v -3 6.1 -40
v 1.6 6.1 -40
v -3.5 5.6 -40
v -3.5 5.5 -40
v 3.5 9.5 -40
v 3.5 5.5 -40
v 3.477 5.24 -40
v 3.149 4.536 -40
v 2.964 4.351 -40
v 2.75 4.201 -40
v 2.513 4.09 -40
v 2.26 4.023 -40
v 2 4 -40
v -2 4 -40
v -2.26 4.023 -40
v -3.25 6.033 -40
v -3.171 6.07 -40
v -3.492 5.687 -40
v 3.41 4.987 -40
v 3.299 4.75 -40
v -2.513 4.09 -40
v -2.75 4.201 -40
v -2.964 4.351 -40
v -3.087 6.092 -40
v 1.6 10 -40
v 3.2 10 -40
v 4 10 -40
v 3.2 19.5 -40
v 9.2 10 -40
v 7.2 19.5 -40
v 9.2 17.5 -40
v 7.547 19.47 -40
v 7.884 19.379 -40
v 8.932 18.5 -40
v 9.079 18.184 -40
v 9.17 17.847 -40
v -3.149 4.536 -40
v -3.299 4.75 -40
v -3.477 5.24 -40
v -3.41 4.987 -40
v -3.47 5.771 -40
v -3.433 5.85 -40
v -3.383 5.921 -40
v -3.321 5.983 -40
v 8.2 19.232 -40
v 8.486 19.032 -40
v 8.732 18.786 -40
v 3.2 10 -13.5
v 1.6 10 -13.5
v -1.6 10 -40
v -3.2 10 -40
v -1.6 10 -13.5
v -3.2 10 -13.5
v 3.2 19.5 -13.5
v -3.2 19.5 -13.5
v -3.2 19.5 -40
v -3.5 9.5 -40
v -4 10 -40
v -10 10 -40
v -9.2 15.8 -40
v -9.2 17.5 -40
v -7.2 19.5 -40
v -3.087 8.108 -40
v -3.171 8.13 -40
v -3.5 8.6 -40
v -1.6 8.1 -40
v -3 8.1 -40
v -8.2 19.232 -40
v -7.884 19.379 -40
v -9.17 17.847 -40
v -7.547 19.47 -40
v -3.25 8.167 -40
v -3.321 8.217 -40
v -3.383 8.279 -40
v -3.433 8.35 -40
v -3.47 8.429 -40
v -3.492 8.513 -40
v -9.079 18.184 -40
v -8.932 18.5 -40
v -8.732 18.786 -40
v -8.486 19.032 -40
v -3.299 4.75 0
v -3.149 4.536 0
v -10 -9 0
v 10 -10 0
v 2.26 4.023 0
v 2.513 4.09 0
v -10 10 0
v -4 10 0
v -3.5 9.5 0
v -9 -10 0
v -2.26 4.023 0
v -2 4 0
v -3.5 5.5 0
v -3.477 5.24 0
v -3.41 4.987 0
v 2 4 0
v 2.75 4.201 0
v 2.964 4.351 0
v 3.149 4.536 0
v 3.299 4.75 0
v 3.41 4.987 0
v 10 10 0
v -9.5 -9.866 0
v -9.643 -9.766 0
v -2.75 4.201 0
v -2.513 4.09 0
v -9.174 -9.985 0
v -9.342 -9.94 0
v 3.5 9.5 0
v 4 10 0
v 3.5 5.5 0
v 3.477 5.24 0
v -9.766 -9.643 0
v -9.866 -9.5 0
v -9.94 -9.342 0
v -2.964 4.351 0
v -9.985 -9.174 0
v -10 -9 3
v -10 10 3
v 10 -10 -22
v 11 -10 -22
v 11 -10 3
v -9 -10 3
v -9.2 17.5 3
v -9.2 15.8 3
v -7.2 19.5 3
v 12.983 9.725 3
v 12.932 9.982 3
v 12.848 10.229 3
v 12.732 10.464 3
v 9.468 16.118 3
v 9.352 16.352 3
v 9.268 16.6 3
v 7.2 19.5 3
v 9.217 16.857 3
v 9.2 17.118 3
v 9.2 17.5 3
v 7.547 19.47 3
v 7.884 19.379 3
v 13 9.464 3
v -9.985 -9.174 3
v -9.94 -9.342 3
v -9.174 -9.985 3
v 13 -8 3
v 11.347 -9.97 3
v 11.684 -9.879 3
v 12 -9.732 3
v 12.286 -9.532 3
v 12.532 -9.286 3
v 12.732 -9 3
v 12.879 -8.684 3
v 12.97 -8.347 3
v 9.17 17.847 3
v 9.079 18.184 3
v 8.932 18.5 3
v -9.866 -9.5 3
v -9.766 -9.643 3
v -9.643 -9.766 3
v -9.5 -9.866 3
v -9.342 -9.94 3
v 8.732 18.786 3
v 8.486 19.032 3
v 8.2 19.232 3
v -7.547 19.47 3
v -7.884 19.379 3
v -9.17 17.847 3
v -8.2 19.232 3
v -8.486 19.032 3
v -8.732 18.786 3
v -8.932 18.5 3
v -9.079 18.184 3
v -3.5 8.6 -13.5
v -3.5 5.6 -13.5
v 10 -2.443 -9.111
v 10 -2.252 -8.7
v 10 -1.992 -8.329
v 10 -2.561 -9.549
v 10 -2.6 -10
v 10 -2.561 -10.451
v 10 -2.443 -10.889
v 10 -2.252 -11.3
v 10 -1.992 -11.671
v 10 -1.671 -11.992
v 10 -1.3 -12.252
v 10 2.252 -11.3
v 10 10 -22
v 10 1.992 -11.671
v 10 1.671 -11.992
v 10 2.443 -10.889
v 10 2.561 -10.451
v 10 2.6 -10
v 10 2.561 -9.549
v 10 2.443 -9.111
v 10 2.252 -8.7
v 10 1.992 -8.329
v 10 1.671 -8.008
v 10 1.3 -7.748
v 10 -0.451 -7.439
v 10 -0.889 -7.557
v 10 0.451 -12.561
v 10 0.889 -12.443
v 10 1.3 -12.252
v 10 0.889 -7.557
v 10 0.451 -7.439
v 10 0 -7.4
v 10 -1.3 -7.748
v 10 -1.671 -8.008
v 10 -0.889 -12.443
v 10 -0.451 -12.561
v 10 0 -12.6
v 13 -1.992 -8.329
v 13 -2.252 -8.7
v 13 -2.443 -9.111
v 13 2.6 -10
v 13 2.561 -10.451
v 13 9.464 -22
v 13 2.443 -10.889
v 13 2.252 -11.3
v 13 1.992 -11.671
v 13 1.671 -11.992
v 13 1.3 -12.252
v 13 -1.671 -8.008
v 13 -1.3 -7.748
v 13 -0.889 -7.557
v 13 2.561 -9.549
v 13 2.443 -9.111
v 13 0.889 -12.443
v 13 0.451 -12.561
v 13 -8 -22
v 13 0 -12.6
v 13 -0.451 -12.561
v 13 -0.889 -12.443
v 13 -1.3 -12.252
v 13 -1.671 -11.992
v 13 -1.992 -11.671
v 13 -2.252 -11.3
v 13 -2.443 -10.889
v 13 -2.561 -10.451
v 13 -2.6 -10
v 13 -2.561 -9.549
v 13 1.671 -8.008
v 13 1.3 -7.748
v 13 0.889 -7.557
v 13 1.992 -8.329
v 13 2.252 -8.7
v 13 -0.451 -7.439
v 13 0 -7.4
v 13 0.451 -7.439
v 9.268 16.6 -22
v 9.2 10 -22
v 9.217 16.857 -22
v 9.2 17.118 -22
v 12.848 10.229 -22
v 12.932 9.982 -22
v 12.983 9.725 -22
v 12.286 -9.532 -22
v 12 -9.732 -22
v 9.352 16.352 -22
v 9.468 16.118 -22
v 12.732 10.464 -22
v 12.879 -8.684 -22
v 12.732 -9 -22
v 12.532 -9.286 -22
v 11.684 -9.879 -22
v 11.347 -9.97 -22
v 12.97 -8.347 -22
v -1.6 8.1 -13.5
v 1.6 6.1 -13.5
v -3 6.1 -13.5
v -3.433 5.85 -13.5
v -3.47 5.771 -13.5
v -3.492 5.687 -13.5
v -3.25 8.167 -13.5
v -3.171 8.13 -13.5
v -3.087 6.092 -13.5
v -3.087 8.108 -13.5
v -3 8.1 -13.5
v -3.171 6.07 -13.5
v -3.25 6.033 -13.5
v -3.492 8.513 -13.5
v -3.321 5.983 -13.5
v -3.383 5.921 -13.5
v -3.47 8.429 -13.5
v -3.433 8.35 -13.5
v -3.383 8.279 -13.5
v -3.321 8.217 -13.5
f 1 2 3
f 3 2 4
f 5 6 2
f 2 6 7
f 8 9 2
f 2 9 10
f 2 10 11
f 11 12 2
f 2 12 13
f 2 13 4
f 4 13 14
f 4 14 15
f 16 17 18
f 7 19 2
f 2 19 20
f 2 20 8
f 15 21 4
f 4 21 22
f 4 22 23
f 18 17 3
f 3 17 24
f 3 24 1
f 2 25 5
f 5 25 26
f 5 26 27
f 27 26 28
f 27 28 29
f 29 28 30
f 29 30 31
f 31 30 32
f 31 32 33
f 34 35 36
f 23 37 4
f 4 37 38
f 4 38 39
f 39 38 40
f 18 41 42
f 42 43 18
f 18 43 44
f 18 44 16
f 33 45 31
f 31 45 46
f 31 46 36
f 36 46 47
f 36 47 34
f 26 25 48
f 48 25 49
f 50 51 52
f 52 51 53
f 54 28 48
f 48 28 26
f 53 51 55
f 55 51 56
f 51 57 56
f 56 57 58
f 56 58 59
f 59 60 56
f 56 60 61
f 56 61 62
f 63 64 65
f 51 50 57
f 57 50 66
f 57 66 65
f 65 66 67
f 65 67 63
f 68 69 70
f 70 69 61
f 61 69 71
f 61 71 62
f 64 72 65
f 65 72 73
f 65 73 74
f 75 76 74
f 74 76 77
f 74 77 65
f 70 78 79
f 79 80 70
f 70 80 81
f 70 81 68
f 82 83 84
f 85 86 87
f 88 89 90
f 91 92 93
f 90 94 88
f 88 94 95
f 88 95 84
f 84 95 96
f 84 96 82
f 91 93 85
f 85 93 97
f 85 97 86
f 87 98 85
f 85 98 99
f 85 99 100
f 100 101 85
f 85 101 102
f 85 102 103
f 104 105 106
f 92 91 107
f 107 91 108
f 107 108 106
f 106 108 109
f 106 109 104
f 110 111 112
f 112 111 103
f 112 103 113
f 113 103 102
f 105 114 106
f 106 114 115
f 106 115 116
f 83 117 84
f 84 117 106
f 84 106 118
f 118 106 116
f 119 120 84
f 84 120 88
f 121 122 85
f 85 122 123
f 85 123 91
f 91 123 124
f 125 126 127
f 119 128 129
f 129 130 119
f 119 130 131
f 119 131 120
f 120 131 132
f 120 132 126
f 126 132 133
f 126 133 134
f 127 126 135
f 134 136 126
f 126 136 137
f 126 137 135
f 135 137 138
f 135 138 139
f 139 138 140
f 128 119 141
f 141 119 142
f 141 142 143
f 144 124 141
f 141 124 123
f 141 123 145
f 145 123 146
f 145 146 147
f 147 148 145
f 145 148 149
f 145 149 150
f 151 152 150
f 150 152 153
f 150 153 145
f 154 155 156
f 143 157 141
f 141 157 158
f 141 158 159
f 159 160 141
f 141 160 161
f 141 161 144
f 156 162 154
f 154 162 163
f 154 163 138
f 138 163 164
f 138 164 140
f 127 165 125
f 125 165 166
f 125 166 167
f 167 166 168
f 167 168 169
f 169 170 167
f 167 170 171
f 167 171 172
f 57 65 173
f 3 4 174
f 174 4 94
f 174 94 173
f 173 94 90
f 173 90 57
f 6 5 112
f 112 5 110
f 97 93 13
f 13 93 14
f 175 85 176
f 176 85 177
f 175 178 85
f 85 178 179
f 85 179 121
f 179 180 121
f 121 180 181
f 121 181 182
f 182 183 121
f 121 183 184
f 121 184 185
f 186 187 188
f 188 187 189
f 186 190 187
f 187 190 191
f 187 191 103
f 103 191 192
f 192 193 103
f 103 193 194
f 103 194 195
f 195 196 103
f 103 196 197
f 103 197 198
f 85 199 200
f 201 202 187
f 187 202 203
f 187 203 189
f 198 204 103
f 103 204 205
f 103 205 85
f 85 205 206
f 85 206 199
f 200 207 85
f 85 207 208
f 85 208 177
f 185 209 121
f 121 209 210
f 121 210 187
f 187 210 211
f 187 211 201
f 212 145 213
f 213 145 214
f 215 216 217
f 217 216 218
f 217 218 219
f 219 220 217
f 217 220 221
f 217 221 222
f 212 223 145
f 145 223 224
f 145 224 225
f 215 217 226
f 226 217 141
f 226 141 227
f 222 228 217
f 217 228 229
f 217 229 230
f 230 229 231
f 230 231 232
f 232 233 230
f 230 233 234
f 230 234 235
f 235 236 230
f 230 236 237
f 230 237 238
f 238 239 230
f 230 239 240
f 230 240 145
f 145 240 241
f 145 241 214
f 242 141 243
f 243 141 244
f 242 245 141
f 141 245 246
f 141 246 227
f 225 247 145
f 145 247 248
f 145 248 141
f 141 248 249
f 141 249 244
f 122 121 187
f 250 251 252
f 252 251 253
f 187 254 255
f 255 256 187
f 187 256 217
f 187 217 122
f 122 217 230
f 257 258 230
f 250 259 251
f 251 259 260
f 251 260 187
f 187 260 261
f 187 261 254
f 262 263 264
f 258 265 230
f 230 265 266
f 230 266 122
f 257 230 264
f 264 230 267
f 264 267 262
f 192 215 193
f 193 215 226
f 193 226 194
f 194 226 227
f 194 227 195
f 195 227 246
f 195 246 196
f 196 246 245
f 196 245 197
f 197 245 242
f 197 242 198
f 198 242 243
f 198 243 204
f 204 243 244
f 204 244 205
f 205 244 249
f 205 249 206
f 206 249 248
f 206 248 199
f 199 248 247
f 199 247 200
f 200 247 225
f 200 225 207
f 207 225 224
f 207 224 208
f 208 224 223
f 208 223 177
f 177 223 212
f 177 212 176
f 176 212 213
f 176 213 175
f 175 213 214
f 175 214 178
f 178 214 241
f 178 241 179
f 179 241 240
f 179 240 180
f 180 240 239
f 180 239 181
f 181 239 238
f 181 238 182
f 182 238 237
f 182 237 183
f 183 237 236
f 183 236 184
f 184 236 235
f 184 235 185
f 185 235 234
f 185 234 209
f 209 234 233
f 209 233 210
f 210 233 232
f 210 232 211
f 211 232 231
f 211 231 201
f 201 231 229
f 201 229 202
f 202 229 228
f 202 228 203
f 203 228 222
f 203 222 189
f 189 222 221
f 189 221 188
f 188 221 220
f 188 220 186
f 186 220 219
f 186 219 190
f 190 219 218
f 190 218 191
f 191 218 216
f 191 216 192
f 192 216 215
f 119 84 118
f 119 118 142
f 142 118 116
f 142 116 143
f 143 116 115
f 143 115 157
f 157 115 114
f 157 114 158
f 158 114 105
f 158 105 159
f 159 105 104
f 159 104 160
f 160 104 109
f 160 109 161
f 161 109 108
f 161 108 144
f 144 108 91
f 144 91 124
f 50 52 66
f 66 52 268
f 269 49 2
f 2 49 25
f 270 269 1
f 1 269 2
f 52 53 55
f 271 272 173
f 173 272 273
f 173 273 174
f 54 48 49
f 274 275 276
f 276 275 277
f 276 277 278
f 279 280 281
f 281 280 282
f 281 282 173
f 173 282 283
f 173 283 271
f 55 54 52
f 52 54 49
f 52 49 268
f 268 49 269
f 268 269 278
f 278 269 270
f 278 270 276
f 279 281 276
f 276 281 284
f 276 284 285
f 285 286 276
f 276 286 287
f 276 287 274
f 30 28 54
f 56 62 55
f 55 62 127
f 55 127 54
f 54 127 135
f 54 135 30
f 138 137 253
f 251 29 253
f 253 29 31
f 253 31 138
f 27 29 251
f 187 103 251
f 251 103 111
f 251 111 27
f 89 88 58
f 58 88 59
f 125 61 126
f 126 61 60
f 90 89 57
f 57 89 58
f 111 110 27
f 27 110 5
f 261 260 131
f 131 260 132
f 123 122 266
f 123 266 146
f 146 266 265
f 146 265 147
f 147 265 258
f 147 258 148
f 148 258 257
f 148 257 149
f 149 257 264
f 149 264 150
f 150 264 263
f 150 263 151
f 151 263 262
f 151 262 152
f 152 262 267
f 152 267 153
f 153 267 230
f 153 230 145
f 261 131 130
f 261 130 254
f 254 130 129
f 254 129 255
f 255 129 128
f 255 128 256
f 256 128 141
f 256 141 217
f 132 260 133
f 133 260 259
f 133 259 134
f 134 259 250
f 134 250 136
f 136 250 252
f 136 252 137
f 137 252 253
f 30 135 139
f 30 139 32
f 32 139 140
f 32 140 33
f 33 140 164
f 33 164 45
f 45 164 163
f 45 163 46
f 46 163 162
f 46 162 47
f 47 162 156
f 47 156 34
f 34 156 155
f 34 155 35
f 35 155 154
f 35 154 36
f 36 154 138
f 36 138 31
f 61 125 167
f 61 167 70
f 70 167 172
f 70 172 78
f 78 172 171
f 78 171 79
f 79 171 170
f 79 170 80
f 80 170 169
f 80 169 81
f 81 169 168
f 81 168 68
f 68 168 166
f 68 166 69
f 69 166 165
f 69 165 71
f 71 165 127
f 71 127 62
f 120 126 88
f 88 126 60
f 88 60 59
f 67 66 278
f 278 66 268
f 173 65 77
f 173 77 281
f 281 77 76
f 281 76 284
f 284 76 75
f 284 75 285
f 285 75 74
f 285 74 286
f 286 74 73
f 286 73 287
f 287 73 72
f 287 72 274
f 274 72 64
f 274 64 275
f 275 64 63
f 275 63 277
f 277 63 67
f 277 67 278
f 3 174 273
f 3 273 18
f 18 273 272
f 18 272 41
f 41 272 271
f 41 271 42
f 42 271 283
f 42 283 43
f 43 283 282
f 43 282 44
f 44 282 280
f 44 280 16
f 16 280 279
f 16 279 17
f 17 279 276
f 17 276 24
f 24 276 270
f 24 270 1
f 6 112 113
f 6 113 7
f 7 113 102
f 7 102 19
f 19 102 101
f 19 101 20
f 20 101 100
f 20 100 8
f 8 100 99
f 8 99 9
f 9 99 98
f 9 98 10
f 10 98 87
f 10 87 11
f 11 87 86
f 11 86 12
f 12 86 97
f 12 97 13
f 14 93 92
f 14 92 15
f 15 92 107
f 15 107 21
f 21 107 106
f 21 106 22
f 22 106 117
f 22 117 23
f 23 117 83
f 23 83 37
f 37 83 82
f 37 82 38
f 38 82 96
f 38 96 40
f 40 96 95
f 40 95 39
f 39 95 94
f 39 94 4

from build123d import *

# Parameters (mm, degrees)
SKETCH_1_W          = 20
SKETCH_1_H          = 20
EXTRUDE_1_DEPTH     = 3
SKETCH_2_W          = 7
SKETCH_2_H          = 6
EXTRUDE_2_DEPTH     = 40
SKETCH_3_W          = 3
SKETCH_3_H          = 20
EXTRUDE_3_DEPTH     = 25
CUT_EXTRUDE_1_REACH = 49.212
SKETCH_4_R          = 2.6
FILLET_1_R          = 1
SKETCH_5_W          = 3.2
SKETCH_5_H          = 3.9
CUT_EXTRUDE_2_DEPTH = 30
SKETCH_6_W          = 6
SKETCH_6_H          = 9.5
EXTRUDE_4_DEPTH     = 43
CHAMFER_1_SIZE      = 0.5
SKETCH_7_W          = 6.4
SKETCH_7_H          = 9.5
EXTRUDE_5_DEPTH     = 16.5
EXTRUDE_6_DEPTH     = 25
FILLET_2_R          = 2
EXTRUDE_7_DEPTH     = 43
SKETCH_10_W         = 1.9
SKETCH_10_H         = 2
CUT_EXTRUDE_3_DEPTH = 26.5
FILLET_3_R          = 0.5
FILLET_4_R          = 1.5


with BuildPart() as part:
    # ｽｹｯﾁ1 → ﾎﾞｽ - 押し出し1 (new body)
    with BuildSketch(Plane.XY):
        Rectangle(SKETCH_1_W, SKETCH_1_H)
    extrude(amount=EXTRUDE_1_DEPTH)

    # ｽｹｯﾁ2 → ﾎﾞｽ - 押し出し2 (add)
    with BuildSketch(Plane(origin=(0, 0, 0), x_dir=(-1, 0, 0), z_dir=(0, 0, -1))):
        with Locations((0, 7)):
            Rectangle(SKETCH_2_W, SKETCH_2_H)
    extrude(amount=EXTRUDE_2_DEPTH)

    # ｽｹｯﾁ3 → ﾎﾞｽ - 押し出し3 (add)
    with BuildSketch(Plane.XY.offset(3)):
        with Locations((11.5, 0)):
            Rectangle(SKETCH_3_W, SKETCH_3_H)
    extrude(amount=-EXTRUDE_3_DEPTH)

    # ｽｹｯﾁ4 → ｶｯﾄ - 押し出し1 (cut, up to next)
    with BuildSketch(Plane(origin=(13, 0, 0), x_dir=(0, 0, -1), z_dir=(1, 0, 0)), mode=Mode.PRIVATE) as cut_extrude_1_sk1:
        with Locations(Location((10, 0, 0), (0, 0, 90))):
            Circle(SKETCH_4_R)
    cut_extrude_1_tool1 = extrude(cut_extrude_1_sk1.sketch, amount=-CUT_EXTRUDE_1_REACH, mode=Mode.PRIVATE) & part.part
    add(cut_extrude_1_tool1.solids().sort_by_distance((13, 0, -10))[0], mode=Mode.SUBTRACT)

    # ﾌｨﾚｯﾄ1
    fillet_1_edges = [part.edges().sort_by_distance(p)[0] for p in [
        (-10, -10, 1.5),
    ]]
    fillet(fillet_1_edges, radius=FILLET_1_R)

    # ｽｹｯﾁ5 → ｶｯﾄ - 押し出し2 (cut)
    with BuildSketch(Plane(origin=(0, 0, -13.5), x_dir=(-1, 0, 0), z_dir=(0, 0, -1))):
        with Locations((0, 8.05)):
            Rectangle(SKETCH_5_W, SKETCH_5_H)
    extrude(amount=CUT_EXTRUDE_2_DEPTH, mode=Mode.SUBTRACT)

    # ｽｹｯﾁ6 → ﾎﾞｽ - 押し出し4 (add)
    with BuildSketch(Plane.XY.offset(3)):
        with Locations((6.2, 14.75)):
            Rectangle(SKETCH_6_W, SKETCH_6_H)
        with Locations((-6.2, 14.75)):
            Rectangle(SKETCH_6_W, SKETCH_6_H)
    extrude(amount=-EXTRUDE_4_DEPTH)

    # 面取り1
    chamfer_1_edges = [part.edges().sort_by_distance(p)[0] for p in [
        (-3.5, 10, -20),
        (3.5, 10, -20),
    ]]
    chamfer(chamfer_1_edges, length=CHAMFER_1_SIZE)

    # ｽｹｯﾁ7 → ﾎﾞｽ - 押し出し5 (add)
    with BuildSketch(Plane.XY.offset(3)):
        with Locations((0, 14.75)):
            Rectangle(SKETCH_7_W, SKETCH_7_H)
    extrude(amount=-EXTRUDE_5_DEPTH)

    # ｽｹｯﾁ8 → ﾎﾞｽ - 押し出し6 (add)
    with BuildSketch(Plane.XY.offset(3)):
        Polygon((13, 10), (9.2, 16.581793069), (9.2, 10), align=None)
    extrude(amount=-EXTRUDE_6_DEPTH)

    # ﾌｨﾚｯﾄ2
    fillet_2_edges = [part.edges().sort_by_distance(p)[0] for p in [
        (9.2, 16.581793069, -9.5),
        (13, 10, -9.5),
        (13, -10, -9.5),
        (9.2, 19.5, -18.5),
        (-9.2, 19.5, -18.5),
    ]]
    fillet(fillet_2_edges, radius=FILLET_2_R)

    # ｽｹｯﾁ9 → ﾎﾞｽ - 押し出し7 (add)
    with BuildSketch(Plane.XY.offset(3)):
        Polygon((-10, 10), (-9.2, 15.8), (-9.2, 10), align=None)
    extrude(amount=-EXTRUDE_7_DEPTH)

    # ｽｹｯﾁ10 → ｶｯﾄ - 押し出し3 (cut)
    with BuildSketch(Plane(origin=(0, 0, -40), x_dir=(-1, 0, 0), z_dir=(0, 0, -1))):
        with Locations((2.55, 7.1)):
            Rectangle(SKETCH_10_W, SKETCH_10_H)
    extrude(amount=-CUT_EXTRUDE_3_DEPTH, mode=Mode.SUBTRACT)

    # ﾌｨﾚｯﾄ3
    fillet_3_edges = [part.edges().sort_by_distance(p)[0] for p in [
        (-3.5, 6.1, -26.75),
        (-3.5, 8.1, -26.75),
    ]]
    fillet(fillet_3_edges, radius=FILLET_3_R)

    # ﾌｨﾚｯﾄ4
    fillet_4_edges = [part.edges().sort_by_distance(p)[0] for p in [
        (-3.5, 4, -20),
        (3.5, 4, -20),
    ]]
    fillet(fillet_4_edges, radius=FILLET_4_R)


solid = part.part
